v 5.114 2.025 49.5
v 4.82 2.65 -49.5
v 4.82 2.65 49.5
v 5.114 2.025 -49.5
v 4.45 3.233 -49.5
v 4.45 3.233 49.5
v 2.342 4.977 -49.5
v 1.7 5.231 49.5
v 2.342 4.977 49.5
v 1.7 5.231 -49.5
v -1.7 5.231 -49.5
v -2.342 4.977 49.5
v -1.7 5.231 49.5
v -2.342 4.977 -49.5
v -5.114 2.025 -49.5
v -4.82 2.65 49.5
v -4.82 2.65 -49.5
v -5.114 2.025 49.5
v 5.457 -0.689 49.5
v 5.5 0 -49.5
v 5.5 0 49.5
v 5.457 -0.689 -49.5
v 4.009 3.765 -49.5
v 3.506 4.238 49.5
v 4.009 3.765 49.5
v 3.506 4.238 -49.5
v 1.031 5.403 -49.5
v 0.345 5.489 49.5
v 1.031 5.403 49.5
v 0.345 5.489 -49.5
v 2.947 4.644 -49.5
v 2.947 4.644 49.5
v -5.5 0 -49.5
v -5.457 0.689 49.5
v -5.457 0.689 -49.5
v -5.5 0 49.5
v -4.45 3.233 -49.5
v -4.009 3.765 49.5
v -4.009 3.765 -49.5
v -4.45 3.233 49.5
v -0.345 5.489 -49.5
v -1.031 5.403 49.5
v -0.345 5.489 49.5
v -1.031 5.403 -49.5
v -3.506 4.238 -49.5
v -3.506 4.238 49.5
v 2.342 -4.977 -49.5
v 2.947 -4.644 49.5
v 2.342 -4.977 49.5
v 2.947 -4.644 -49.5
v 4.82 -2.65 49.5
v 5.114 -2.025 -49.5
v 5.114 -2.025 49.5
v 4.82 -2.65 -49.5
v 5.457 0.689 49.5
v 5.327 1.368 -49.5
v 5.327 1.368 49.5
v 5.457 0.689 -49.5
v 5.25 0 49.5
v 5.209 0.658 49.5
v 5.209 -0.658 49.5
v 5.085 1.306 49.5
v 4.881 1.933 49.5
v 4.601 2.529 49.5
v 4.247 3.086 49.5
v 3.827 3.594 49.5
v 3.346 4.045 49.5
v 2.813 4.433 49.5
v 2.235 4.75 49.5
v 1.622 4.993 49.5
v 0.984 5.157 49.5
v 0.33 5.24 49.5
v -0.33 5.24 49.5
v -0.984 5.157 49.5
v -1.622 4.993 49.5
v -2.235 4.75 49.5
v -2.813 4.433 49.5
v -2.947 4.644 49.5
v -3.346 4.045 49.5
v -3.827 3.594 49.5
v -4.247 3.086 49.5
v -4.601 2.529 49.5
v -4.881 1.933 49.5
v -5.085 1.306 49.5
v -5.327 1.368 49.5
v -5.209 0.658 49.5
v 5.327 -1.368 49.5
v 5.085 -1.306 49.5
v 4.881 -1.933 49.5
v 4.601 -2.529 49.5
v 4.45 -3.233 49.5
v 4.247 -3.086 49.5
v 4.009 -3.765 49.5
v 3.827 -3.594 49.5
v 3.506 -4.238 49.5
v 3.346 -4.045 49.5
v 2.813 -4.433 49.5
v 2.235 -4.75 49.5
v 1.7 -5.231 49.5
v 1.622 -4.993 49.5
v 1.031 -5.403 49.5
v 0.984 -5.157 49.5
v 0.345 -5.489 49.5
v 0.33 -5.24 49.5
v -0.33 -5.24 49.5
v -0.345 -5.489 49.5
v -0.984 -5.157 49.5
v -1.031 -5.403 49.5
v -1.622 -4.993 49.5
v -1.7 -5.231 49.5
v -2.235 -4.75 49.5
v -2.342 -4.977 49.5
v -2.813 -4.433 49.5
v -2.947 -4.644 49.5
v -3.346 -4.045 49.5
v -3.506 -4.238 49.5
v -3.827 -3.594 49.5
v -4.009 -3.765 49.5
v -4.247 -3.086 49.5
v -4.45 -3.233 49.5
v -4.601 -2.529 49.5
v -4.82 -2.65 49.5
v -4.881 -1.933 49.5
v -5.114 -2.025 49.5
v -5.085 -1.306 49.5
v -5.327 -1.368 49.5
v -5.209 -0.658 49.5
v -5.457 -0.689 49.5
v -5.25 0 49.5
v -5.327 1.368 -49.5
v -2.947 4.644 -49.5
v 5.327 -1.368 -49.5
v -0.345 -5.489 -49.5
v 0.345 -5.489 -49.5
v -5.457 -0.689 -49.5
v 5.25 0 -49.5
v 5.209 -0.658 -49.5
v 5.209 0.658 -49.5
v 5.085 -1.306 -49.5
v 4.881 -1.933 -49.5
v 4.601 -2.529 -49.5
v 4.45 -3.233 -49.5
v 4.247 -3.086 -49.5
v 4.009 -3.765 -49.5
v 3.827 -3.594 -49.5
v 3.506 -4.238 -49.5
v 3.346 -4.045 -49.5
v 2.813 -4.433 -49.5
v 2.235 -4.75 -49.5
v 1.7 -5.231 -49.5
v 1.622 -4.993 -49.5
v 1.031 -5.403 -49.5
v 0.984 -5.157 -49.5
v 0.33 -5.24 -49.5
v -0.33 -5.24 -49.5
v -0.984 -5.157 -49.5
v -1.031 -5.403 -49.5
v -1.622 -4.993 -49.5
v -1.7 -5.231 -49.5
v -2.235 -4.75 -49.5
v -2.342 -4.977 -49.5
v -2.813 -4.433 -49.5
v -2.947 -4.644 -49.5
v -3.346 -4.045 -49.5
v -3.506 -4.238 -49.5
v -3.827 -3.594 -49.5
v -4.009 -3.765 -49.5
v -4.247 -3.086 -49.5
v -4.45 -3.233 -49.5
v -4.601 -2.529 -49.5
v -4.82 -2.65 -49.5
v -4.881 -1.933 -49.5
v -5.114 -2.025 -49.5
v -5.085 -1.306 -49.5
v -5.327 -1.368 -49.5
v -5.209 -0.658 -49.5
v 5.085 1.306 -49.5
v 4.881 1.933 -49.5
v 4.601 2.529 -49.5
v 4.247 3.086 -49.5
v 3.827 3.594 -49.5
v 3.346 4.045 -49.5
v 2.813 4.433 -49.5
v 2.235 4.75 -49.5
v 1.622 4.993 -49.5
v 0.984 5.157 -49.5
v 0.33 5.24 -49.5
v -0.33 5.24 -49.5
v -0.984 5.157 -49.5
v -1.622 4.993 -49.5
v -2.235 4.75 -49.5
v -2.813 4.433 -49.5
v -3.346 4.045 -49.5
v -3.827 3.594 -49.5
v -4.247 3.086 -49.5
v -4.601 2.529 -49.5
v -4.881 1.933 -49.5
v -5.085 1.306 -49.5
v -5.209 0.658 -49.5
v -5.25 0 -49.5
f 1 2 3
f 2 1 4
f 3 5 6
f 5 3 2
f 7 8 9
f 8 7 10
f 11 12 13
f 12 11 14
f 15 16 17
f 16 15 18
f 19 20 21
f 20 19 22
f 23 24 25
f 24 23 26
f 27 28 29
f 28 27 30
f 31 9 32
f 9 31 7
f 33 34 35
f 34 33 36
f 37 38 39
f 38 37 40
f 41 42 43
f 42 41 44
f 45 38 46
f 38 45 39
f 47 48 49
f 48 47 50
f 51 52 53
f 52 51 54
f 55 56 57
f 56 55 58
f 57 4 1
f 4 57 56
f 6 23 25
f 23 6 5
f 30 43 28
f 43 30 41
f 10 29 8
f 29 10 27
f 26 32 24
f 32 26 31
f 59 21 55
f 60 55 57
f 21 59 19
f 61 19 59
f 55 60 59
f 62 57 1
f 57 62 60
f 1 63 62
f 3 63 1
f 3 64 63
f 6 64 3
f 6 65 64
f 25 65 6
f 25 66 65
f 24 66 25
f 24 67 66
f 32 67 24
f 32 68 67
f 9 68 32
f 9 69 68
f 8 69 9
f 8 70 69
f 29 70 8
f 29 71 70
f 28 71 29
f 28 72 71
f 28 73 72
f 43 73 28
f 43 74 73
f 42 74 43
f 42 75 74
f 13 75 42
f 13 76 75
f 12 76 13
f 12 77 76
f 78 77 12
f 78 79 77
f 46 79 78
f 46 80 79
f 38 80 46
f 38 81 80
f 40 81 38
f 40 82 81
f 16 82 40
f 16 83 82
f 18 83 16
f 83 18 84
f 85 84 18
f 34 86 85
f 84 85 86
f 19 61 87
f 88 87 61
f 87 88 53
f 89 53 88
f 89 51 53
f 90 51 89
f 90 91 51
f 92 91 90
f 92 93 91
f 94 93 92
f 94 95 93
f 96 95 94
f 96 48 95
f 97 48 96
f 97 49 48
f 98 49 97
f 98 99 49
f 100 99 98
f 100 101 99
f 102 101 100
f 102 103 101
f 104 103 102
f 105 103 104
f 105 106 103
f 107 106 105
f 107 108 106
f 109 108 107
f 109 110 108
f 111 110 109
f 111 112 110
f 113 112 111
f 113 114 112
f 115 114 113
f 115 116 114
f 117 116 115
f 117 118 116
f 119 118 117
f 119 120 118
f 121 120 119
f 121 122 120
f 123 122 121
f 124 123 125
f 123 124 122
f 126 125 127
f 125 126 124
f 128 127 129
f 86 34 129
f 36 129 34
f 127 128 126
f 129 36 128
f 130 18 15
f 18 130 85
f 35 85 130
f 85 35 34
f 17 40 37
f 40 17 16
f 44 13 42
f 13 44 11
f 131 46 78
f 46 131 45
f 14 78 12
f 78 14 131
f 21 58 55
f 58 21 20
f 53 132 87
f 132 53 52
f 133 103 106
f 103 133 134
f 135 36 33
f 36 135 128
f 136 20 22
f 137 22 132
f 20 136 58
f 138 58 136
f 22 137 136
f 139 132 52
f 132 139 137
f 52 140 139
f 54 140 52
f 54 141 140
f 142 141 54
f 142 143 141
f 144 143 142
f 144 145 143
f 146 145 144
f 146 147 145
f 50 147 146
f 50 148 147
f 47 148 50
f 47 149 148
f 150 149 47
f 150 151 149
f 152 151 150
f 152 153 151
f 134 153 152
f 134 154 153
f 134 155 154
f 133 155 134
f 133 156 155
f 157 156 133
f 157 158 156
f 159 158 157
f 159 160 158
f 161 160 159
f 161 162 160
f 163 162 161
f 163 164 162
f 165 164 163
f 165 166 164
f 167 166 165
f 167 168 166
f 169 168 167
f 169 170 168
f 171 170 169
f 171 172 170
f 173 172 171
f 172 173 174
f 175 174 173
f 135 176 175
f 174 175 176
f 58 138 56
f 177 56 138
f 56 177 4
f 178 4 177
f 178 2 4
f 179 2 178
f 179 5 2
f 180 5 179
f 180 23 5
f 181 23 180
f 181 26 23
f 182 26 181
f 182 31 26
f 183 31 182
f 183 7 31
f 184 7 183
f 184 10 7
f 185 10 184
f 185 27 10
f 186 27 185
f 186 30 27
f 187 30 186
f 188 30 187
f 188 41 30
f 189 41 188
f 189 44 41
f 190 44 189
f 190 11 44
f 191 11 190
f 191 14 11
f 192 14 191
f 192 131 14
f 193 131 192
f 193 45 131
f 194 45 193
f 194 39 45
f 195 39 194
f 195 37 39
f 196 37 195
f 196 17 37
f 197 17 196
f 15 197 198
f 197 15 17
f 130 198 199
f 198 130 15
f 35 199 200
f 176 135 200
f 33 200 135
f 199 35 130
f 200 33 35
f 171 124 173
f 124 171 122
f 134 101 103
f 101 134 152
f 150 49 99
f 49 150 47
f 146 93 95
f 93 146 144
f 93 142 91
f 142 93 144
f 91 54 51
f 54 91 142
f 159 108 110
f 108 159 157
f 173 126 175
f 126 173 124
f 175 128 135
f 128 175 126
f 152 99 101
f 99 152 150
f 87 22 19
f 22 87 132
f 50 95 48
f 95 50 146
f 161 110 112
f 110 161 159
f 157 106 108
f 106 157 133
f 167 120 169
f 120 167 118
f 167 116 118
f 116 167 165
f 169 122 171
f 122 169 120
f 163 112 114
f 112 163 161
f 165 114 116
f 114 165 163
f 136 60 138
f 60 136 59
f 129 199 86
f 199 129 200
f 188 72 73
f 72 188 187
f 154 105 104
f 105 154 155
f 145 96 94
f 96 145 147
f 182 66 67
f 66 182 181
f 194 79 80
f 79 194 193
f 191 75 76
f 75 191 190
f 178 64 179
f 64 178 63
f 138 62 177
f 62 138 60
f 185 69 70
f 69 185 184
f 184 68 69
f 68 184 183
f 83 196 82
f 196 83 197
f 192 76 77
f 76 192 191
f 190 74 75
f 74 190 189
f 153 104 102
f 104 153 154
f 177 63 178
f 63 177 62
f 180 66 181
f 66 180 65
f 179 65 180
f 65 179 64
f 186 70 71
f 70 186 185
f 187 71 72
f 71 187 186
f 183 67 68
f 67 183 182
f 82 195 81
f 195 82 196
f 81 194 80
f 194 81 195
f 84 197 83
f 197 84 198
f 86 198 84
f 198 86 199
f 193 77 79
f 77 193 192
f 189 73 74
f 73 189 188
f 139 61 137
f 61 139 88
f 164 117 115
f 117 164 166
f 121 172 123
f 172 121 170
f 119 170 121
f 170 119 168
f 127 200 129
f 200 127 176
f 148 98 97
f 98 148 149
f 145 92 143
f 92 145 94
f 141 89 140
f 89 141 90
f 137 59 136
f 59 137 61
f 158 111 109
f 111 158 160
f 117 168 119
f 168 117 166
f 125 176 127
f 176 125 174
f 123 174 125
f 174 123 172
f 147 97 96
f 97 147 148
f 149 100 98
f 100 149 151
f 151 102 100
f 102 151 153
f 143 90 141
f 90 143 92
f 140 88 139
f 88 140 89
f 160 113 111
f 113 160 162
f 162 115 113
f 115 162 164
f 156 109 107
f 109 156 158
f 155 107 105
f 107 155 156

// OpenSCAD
$fn = 50;


difference() {
	union() {
		translate(v = [0, 0, -49.5000000000]) {
			cylinder(h = 99, r = 5.5000000000);
		}
	}
	union() {
		translate(v = [0, 0, -100.0000000000]) {
			cylinder(h = 200, r = 5.2500000000);
		}
	}
}
